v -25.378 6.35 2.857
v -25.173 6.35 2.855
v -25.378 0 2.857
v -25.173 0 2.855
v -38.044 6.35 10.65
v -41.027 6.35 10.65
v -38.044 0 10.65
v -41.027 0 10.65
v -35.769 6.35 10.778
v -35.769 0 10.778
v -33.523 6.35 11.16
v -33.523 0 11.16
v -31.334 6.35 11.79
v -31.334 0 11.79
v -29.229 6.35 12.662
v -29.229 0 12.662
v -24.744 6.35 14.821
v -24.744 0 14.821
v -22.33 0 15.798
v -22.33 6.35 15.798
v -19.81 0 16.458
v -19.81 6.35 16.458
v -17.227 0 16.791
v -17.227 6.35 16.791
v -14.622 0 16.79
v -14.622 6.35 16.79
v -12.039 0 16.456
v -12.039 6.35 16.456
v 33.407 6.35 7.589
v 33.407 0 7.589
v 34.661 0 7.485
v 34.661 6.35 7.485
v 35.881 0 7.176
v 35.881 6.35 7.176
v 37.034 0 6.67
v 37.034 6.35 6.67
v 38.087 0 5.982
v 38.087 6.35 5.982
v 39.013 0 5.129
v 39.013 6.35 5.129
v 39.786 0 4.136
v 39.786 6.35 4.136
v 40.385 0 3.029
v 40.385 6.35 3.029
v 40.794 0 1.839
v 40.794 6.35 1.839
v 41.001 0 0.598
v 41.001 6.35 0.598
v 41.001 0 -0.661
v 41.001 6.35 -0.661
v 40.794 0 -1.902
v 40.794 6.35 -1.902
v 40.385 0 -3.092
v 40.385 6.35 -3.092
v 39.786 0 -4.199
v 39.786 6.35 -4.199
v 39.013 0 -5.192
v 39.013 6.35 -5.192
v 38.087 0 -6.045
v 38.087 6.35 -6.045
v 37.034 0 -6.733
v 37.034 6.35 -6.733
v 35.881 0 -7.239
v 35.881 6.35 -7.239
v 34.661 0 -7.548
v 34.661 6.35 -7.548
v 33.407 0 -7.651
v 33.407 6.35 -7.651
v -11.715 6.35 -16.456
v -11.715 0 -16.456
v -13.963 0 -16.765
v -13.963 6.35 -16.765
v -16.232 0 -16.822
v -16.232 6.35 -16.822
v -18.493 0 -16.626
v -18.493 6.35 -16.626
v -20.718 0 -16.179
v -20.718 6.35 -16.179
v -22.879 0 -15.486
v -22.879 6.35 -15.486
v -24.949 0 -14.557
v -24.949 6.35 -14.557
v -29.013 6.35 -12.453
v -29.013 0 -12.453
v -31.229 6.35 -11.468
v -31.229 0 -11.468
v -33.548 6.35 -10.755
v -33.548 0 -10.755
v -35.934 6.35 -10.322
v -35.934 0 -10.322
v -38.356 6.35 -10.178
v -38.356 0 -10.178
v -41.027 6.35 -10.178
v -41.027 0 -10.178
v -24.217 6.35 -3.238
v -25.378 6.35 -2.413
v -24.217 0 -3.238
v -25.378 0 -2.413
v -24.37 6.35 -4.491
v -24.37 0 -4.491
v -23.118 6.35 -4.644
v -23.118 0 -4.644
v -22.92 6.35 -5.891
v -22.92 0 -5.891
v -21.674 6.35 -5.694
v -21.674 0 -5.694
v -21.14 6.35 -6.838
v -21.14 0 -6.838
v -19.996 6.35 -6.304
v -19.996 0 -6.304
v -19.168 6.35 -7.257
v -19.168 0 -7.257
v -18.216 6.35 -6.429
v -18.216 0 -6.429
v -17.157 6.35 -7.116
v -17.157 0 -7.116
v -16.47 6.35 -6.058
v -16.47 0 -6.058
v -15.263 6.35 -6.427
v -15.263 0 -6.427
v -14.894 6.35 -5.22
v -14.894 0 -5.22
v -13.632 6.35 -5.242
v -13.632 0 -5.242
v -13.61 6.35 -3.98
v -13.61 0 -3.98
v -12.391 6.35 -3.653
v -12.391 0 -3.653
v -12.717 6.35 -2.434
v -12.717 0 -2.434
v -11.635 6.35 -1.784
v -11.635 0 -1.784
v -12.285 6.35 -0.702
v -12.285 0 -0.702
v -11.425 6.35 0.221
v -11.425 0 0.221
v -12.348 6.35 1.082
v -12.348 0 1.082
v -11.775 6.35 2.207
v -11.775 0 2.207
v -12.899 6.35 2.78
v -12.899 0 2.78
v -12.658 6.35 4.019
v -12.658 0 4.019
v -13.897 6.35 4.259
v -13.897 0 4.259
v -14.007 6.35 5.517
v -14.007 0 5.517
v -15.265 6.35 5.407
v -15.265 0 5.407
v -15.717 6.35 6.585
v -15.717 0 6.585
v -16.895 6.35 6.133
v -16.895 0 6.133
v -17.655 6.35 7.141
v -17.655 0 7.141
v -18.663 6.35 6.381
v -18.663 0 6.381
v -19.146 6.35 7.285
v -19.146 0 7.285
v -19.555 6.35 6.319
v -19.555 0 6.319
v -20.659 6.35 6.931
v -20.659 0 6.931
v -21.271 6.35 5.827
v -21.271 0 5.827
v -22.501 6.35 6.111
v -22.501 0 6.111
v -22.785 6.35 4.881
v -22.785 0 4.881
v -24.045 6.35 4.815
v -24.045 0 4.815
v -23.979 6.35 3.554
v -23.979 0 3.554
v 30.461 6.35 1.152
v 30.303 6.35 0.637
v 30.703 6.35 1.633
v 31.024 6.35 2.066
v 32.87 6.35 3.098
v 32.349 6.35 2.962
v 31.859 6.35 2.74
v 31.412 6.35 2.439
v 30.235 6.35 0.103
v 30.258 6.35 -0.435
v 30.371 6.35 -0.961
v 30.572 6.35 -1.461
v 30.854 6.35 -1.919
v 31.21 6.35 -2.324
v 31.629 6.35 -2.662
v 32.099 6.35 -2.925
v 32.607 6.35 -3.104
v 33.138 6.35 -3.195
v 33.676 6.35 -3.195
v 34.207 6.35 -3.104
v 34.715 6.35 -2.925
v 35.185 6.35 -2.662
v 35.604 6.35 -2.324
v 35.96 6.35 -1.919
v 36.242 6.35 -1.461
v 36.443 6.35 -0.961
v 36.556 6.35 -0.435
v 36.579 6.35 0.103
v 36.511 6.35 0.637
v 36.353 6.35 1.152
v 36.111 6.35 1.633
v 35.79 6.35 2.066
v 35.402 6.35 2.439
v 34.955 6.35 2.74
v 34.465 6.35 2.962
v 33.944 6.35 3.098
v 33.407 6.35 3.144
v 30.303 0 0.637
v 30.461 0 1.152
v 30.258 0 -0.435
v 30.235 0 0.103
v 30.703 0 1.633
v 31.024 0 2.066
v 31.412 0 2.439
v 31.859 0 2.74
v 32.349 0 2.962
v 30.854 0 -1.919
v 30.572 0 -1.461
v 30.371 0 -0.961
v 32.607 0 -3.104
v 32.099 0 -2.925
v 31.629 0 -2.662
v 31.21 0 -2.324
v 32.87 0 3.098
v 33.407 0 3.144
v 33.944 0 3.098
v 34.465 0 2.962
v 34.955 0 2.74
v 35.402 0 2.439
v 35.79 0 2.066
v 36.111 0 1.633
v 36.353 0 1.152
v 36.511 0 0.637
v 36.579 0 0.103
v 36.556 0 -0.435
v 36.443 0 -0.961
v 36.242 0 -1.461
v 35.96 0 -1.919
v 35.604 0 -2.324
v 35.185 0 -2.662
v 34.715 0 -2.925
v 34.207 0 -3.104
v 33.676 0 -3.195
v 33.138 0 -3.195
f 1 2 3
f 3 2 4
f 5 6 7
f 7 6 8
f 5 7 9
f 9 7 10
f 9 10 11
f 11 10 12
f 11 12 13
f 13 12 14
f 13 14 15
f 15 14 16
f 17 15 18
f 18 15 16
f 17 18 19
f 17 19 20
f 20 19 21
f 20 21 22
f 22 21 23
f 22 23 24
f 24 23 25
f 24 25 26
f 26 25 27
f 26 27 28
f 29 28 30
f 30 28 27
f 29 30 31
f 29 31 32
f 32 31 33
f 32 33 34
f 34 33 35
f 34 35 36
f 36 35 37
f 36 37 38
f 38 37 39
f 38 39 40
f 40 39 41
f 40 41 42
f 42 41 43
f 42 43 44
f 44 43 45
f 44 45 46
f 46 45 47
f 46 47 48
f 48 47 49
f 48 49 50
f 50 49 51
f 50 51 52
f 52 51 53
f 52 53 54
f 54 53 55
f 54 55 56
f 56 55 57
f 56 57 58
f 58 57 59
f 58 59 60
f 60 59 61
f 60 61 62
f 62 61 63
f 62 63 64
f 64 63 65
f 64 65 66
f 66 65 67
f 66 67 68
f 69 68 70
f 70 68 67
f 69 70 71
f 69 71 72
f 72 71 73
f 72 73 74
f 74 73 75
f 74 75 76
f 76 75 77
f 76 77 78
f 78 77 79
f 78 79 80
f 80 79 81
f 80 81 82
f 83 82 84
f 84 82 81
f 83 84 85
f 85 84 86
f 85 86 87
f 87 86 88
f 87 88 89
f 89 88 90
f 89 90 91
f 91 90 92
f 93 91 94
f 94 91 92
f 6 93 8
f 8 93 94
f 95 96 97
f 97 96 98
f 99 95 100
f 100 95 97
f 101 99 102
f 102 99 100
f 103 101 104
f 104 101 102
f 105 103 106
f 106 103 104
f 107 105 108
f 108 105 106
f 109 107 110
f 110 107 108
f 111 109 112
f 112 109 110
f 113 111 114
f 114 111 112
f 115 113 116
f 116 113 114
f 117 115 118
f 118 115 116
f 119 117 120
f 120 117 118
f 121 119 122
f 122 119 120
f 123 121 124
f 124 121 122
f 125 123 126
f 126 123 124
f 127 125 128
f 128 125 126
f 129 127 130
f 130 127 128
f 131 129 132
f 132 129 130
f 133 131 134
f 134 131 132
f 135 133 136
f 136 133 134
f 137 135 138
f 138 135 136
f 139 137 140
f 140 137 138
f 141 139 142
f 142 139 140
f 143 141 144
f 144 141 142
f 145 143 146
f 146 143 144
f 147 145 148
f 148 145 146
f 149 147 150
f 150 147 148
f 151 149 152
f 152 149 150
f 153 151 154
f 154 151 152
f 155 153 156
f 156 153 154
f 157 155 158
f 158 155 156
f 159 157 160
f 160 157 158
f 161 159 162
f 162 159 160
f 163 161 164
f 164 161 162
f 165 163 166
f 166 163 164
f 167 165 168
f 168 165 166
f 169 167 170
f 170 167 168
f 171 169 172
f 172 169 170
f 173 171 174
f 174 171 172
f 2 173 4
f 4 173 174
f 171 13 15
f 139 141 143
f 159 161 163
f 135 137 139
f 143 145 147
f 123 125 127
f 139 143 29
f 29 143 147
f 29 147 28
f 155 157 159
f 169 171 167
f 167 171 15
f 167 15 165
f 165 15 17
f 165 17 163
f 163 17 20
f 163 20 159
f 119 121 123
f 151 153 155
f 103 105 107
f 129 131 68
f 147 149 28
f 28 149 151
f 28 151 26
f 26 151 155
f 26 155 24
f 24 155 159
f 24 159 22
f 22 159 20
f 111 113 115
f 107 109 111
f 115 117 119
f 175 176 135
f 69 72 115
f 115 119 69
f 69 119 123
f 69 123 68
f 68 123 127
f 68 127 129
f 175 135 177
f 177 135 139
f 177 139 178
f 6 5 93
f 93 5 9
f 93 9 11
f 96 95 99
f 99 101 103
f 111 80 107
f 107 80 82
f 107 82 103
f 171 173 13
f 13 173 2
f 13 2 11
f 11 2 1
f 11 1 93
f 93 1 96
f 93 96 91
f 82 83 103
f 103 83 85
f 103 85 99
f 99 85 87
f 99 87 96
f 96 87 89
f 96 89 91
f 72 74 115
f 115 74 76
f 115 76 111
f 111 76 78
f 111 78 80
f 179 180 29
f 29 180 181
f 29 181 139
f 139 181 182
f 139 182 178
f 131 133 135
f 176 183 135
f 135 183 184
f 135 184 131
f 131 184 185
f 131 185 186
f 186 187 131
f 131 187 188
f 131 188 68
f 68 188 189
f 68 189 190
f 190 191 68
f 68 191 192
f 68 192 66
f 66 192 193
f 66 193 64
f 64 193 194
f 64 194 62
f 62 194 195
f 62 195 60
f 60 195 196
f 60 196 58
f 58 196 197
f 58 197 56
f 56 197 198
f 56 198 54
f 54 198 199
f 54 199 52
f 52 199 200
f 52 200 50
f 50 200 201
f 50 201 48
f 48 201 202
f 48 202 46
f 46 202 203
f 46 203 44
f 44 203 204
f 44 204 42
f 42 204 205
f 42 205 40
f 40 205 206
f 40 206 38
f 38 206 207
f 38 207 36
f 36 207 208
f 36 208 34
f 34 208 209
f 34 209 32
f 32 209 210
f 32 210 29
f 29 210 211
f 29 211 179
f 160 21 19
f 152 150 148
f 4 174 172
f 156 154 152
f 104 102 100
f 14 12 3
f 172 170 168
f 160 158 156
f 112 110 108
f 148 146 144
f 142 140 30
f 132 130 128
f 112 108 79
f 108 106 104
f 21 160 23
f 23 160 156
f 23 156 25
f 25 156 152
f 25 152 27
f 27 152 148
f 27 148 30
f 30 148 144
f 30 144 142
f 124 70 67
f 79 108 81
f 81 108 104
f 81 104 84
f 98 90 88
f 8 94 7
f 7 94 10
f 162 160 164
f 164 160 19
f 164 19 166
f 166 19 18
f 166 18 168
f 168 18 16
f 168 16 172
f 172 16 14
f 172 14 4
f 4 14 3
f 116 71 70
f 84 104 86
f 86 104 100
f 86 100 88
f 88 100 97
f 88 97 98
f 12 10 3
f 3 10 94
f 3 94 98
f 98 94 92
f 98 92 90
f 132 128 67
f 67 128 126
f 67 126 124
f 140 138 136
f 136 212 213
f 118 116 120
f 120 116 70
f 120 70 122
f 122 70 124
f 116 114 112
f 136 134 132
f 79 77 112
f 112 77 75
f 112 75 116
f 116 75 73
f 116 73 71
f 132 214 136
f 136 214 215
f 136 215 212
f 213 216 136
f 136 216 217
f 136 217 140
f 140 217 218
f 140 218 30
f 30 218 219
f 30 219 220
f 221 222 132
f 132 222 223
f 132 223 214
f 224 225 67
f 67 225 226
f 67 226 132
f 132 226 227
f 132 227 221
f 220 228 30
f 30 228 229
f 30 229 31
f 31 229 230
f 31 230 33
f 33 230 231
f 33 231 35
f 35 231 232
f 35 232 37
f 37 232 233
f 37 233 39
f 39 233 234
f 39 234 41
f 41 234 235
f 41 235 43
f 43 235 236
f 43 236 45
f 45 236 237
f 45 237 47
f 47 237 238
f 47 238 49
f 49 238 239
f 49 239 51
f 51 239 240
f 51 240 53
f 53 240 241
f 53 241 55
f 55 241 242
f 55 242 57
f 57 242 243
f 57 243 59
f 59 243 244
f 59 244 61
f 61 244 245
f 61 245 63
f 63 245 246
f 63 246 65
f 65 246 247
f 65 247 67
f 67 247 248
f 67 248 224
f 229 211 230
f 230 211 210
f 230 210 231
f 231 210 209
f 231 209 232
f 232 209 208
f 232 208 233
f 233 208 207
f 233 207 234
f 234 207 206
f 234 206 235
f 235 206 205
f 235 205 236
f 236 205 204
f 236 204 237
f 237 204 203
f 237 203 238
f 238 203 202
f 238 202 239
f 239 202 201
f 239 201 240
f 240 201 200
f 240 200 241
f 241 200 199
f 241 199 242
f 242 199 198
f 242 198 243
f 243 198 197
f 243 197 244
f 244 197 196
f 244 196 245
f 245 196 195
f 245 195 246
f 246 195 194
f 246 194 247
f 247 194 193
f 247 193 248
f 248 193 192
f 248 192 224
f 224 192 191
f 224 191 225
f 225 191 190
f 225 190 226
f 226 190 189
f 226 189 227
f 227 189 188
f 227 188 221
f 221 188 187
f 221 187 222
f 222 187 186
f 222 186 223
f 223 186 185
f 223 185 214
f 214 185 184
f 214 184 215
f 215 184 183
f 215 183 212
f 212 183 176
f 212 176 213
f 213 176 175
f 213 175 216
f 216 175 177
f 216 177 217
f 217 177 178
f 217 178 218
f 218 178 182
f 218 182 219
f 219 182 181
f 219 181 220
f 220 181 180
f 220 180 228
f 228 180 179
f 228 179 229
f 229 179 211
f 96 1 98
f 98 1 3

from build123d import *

# Parameters (mm, degrees)
BOSS_EXTRUDE1_DEPTH             = 6.35
CUT_EXTRUDE1_REACH              = 46.798
SKETCH2_R                       = 3.175
BOSS_EXTRUDE2_REACH             = 46.798
SKETCH3_W                       = 15.648651434
SKETCH3_H                       = 6.35
BOSS_EXTRUDE2_DIRECTION_2_REACH = 46.798


with BuildPart() as part:
    # Sketch1 → Boss-Extrude1 (new body)
    with BuildSketch(Plane(origin=(0, 0, 0), x_dir=(1, 0, 0), z_dir=(0, 1, 0))):
        with BuildLine():
            Line((-25.172750094, -2.854782141), (-23.979365131, -3.554335257))
            Line((-23.979365131, -3.554335257), (-24.045420885, -4.814754144))
            Line((-24.045420885, -4.814754144), (-22.785001999, -4.880809899))
            Line((-22.785001999, -4.880809899), (-22.501080336, -6.110609729))
            Line((-22.501080336, -6.110609729), (-21.271280506, -5.826688067))
            Line((-21.271280506, -5.826688067), (-20.659378714, -6.930588121))
            Line((-20.659378714, -6.930588121), (-19.555478659, -6.318686329))
            Line((-19.555478659, -6.318686329), (-19.145844879, -7.284635532))
            Line((-19.145844879, -7.284635532), (-18.663004813, -6.38109418))
            Line((-18.663004813, -6.38109418), (-17.655008108, -7.140674179))
            Line((-17.655008108, -7.140674179), (-16.895428108, -6.132677474))
            Line((-16.895428108, -6.132677474), (-15.717110864, -6.584991086))
            Line((-15.717110864, -6.584991086), (-15.264797252, -5.406673842))
            Line((-15.264797252, -5.406673842), (-14.00745149, -5.516677342))
            Line((-14.00745149, -5.516677342), (-13.89744799, -4.259331581))
            Line((-13.89744799, -4.259331581), (-12.658488598, -4.018502271))
            Line((-12.658488598, -4.018502271), (-12.899317907, -2.779542878))
            Line((-12.899317907, -2.779542878), (-11.774735254, -2.206539397))
            Line((-11.774735254, -2.206539397), (-12.347738736, -1.081956744))
            Line((-12.347738736, -1.081956744), (-11.424661673, -0.221173456))
            Line((-11.424661673, -0.221173456), (-12.28544496, 0.701903607))
            Line((-12.28544496, 0.701903607), (-11.635390366, 1.783776131))
            Line((-11.635390366, 1.783776131), (-12.717262889, 2.433830725))
            Line((-12.717262889, 2.433830725), (-12.390594789, 3.652972671))
            Line((-12.390594789, 3.652972671), (-13.609736736, 3.979640771))
            Line((-13.609736736, 3.979640771), (-13.631764267, 5.241597158))
            Line((-13.631764267, 5.241597158), (-14.893720653, 5.219569627))
            Line((-14.893720653, 5.219569627), (-15.262737196, 6.426568353))
            Line((-15.262737196, 6.426568353), (-16.469735922, 6.05755181))
            Line((-16.469735922, 6.05755181), (-17.157151327, 7.116078708))
            Line((-17.157151327, 7.116078708), (-18.215678225, 6.428663303))
            Line((-18.215678225, 6.428663303), (-19.168233878, 7.256707299))
            Line((-19.168233878, 7.256707299), (-19.996277875, 6.304151646))
            Line((-19.996277875, 6.304151646), (-21.140172995, 6.837558701))
            Line((-21.140172995, 6.837558701), (-21.67358005, 5.69366358))
            Line((-21.67358005, 5.69366358), (-22.920189524, 5.891107124))
            Line((-22.920189524, 5.891107124), (-23.117633068, 4.64449765))
            Line((-23.117633068, 4.64449765), (-24.370373821, 4.490680427))
            Line((-24.370373821, 4.490680427), (-24.216556598, 3.237939674))
            Line((-24.216556598, 3.237939674), (-25.378370526, 2.412676209))
            Line((-25.378370526, 2.412676209), (-41.02702196, 2.557572596))
            Line((-41.02702196, 2.557572596), (-41.02702196, 10.177572596))
            Line((-41.02702196, 10.177572596), (-38.355583111, 10.177572596))
            ThreePointArc((-38.355583111, 10.177572596), (-33.547545085, 10.754594848), (-29.012572504, 12.452890476))
            Line((-29.012572504, 12.452890476), (-24.949455261, 14.556654192))
            ThreePointArc((-24.949455261, 14.556654192), (-18.492857296, 16.625923003), (-11.714907277, 16.455851756))
            Line((-11.714907277, 16.455851756), (33.40702196, 7.651462795))
            ThreePointArc((33.40702196, 7.651462795), (41.02702196, 0.031462795), (33.40702196, -7.588537205))
            Line((33.40702196, -7.588537205), (-12.038677684, -16.4558708))
            ThreePointArc((-12.038677684, -16.4558708), (-18.523682802, -16.66577615), (-24.744249109, -14.820808279))
            Line((-24.744249109, -14.820808279), (-29.229404705, -12.661591197))
            ThreePointArc((-29.229404705, -12.661591197), (-33.523201838, -11.159597642), (-38.043536354, -10.650427404))
            Line((-38.043536354, -10.650427404), (-41.02702196, -10.650427404))
            Line((-41.02702196, -10.650427404), (-41.02702196, -3.030427404))
            Line((-41.02702196, -3.030427404), (-25.172750094, -2.854782141))
        make_face()
    extrude(amount=BOSS_EXTRUDE1_DEPTH)

    # Sketch2 → Cut-Extrude1 (cut, up to next)
    with BuildSketch(Plane(origin=(0, 6.35, 0), x_dir=(1, 0, 0), z_dir=(0, 1, 0)), mode=Mode.PRIVATE) as cut_extrude1_sk1:
        with Locations(Location((33.40702196, 0.031462795, 0), (0, 0, 270))):
            Circle(SKETCH2_R)
    cut_extrude1_tool1 = extrude(cut_extrude1_sk1.sketch, amount=-CUT_EXTRUDE1_REACH, mode=Mode.PRIVATE) & part.part
    add(cut_extrude1_tool1.solids().sort_by_distance((33.407022, 6.35, -0.031463))[0], mode=Mode.SUBTRACT)

    # Sketch3 → Boss-Extrude2 (add, up to next)
    with BuildSketch(Plane.XY, mode=Mode.PRIVATE) as boss_extrude2_sk1:
        with Locations((-33.202696243, 3.175)):
            Rectangle(SKETCH3_W, SKETCH3_H)
    boss_extrude2_tool1 = extrude(boss_extrude2_sk1.sketch, amount=BOSS_EXTRUDE2_REACH, mode=Mode.PRIVATE) - part.part
    add(boss_extrude2_tool1.solids().sort_by_distance((-33.202696, 3.175, 0))[0])

    # Sketch3 → Boss-Extrude2 direction 2 (add, up to next)
    with BuildSketch(Plane.XY, mode=Mode.PRIVATE) as boss_extrude2_direction_2_sk1:
        with Locations((-33.202696243, 3.175)):
            Rectangle(SKETCH3_W, SKETCH3_H)
    boss_extrude2_direction_2_tool1 = extrude(boss_extrude2_direction_2_sk1.sketch, amount=-BOSS_EXTRUDE2_DIRECTION_2_REACH, mode=Mode.PRIVATE) - part.part
    add(boss_extrude2_direction_2_tool1.solids().sort_by_distance((-33.202696, 3.175, 0))[0])


solid = part.part
